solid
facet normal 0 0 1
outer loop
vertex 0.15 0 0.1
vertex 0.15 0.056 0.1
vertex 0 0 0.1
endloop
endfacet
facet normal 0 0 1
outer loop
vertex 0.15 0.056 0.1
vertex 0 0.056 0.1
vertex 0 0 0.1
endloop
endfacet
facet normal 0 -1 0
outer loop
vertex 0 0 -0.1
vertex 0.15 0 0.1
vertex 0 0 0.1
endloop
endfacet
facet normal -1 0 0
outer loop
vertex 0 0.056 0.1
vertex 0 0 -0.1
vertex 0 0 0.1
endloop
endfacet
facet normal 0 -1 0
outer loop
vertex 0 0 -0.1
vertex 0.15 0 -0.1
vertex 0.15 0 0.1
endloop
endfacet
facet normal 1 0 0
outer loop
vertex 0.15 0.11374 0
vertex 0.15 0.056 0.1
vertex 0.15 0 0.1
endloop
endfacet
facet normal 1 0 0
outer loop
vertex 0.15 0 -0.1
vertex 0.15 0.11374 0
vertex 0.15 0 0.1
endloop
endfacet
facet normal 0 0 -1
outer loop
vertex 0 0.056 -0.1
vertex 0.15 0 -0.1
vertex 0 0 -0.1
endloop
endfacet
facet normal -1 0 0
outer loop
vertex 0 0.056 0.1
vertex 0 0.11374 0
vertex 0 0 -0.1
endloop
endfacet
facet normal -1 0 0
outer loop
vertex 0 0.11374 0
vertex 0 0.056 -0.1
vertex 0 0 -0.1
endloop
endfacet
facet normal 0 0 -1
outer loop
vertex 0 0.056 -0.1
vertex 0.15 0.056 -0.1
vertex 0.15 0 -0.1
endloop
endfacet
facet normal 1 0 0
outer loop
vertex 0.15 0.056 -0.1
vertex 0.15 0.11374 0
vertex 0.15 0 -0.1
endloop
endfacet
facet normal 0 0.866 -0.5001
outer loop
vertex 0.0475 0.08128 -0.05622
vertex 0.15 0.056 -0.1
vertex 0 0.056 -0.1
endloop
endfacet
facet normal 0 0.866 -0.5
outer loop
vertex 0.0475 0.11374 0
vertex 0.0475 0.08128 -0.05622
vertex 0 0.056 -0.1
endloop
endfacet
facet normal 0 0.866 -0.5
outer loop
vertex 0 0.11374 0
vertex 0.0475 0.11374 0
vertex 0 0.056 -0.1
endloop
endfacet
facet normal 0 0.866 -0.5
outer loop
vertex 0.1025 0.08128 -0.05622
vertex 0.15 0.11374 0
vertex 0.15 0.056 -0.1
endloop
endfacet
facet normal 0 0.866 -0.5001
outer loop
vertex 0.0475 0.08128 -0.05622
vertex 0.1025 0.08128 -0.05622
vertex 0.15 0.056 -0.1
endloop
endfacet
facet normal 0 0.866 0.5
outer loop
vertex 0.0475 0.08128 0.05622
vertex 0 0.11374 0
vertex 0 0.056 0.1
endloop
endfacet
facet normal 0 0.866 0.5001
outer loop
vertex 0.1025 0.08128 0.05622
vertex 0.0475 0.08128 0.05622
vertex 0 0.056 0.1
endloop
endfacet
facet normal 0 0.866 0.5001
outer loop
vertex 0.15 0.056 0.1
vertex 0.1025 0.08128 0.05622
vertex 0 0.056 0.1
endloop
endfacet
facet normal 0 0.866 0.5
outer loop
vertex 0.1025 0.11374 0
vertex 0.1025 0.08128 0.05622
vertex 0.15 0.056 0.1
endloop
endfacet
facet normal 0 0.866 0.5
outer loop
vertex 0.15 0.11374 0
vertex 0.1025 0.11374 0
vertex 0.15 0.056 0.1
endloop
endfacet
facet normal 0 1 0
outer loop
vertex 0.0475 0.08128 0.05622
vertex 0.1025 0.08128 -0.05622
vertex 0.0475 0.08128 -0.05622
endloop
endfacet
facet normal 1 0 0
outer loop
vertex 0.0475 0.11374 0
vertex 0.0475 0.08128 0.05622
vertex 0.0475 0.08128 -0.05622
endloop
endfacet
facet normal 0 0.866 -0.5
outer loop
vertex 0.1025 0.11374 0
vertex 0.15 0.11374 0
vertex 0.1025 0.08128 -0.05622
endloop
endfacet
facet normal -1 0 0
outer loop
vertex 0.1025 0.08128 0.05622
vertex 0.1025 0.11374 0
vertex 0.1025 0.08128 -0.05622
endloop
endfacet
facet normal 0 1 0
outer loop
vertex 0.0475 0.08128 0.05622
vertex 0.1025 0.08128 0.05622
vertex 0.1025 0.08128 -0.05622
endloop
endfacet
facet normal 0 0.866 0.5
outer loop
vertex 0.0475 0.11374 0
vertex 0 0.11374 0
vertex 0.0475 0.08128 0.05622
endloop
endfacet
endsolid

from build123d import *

# Parameters (mm, degrees)
BOSS_EXTRUDE1_DEPTH     = 0.15
SKETCH2_W               = 0.055
SKETCH2_H               = 0.03246
CUT_EXTRUDE1_DEPTH      = 1.1
CUT_EXTRUDE1_DEPTH_BACK = 1.1


with BuildPart() as part:
    # Sketch1 → Boss-Extrude1 (new body)
    with BuildSketch(Plane(origin=(0, 0, 0), x_dir=(0, 0, -1), z_dir=(1, 0, 0))):
        Polygon((0.1, 0.056), (0, 0.113735027), (-0.1, 0.056), (-0.1, 0), (0.1, 0), align=None)
    extrude(amount=BOSS_EXTRUDE1_DEPTH)

    # Sketch2 → Cut-Extrude1 (cut, two sides)
    with BuildSketch(Plane.XY) as cut_extrude1_sk:
        with Locations((0.075, 0.097505027)):
            Rectangle(SKETCH2_W, SKETCH2_H)
    extrude(amount=CUT_EXTRUDE1_DEPTH, mode=Mode.SUBTRACT)
    extrude(cut_extrude1_sk.sketch, amount=-CUT_EXTRUDE1_DEPTH_BACK, mode=Mode.SUBTRACT)


solid = part.part
